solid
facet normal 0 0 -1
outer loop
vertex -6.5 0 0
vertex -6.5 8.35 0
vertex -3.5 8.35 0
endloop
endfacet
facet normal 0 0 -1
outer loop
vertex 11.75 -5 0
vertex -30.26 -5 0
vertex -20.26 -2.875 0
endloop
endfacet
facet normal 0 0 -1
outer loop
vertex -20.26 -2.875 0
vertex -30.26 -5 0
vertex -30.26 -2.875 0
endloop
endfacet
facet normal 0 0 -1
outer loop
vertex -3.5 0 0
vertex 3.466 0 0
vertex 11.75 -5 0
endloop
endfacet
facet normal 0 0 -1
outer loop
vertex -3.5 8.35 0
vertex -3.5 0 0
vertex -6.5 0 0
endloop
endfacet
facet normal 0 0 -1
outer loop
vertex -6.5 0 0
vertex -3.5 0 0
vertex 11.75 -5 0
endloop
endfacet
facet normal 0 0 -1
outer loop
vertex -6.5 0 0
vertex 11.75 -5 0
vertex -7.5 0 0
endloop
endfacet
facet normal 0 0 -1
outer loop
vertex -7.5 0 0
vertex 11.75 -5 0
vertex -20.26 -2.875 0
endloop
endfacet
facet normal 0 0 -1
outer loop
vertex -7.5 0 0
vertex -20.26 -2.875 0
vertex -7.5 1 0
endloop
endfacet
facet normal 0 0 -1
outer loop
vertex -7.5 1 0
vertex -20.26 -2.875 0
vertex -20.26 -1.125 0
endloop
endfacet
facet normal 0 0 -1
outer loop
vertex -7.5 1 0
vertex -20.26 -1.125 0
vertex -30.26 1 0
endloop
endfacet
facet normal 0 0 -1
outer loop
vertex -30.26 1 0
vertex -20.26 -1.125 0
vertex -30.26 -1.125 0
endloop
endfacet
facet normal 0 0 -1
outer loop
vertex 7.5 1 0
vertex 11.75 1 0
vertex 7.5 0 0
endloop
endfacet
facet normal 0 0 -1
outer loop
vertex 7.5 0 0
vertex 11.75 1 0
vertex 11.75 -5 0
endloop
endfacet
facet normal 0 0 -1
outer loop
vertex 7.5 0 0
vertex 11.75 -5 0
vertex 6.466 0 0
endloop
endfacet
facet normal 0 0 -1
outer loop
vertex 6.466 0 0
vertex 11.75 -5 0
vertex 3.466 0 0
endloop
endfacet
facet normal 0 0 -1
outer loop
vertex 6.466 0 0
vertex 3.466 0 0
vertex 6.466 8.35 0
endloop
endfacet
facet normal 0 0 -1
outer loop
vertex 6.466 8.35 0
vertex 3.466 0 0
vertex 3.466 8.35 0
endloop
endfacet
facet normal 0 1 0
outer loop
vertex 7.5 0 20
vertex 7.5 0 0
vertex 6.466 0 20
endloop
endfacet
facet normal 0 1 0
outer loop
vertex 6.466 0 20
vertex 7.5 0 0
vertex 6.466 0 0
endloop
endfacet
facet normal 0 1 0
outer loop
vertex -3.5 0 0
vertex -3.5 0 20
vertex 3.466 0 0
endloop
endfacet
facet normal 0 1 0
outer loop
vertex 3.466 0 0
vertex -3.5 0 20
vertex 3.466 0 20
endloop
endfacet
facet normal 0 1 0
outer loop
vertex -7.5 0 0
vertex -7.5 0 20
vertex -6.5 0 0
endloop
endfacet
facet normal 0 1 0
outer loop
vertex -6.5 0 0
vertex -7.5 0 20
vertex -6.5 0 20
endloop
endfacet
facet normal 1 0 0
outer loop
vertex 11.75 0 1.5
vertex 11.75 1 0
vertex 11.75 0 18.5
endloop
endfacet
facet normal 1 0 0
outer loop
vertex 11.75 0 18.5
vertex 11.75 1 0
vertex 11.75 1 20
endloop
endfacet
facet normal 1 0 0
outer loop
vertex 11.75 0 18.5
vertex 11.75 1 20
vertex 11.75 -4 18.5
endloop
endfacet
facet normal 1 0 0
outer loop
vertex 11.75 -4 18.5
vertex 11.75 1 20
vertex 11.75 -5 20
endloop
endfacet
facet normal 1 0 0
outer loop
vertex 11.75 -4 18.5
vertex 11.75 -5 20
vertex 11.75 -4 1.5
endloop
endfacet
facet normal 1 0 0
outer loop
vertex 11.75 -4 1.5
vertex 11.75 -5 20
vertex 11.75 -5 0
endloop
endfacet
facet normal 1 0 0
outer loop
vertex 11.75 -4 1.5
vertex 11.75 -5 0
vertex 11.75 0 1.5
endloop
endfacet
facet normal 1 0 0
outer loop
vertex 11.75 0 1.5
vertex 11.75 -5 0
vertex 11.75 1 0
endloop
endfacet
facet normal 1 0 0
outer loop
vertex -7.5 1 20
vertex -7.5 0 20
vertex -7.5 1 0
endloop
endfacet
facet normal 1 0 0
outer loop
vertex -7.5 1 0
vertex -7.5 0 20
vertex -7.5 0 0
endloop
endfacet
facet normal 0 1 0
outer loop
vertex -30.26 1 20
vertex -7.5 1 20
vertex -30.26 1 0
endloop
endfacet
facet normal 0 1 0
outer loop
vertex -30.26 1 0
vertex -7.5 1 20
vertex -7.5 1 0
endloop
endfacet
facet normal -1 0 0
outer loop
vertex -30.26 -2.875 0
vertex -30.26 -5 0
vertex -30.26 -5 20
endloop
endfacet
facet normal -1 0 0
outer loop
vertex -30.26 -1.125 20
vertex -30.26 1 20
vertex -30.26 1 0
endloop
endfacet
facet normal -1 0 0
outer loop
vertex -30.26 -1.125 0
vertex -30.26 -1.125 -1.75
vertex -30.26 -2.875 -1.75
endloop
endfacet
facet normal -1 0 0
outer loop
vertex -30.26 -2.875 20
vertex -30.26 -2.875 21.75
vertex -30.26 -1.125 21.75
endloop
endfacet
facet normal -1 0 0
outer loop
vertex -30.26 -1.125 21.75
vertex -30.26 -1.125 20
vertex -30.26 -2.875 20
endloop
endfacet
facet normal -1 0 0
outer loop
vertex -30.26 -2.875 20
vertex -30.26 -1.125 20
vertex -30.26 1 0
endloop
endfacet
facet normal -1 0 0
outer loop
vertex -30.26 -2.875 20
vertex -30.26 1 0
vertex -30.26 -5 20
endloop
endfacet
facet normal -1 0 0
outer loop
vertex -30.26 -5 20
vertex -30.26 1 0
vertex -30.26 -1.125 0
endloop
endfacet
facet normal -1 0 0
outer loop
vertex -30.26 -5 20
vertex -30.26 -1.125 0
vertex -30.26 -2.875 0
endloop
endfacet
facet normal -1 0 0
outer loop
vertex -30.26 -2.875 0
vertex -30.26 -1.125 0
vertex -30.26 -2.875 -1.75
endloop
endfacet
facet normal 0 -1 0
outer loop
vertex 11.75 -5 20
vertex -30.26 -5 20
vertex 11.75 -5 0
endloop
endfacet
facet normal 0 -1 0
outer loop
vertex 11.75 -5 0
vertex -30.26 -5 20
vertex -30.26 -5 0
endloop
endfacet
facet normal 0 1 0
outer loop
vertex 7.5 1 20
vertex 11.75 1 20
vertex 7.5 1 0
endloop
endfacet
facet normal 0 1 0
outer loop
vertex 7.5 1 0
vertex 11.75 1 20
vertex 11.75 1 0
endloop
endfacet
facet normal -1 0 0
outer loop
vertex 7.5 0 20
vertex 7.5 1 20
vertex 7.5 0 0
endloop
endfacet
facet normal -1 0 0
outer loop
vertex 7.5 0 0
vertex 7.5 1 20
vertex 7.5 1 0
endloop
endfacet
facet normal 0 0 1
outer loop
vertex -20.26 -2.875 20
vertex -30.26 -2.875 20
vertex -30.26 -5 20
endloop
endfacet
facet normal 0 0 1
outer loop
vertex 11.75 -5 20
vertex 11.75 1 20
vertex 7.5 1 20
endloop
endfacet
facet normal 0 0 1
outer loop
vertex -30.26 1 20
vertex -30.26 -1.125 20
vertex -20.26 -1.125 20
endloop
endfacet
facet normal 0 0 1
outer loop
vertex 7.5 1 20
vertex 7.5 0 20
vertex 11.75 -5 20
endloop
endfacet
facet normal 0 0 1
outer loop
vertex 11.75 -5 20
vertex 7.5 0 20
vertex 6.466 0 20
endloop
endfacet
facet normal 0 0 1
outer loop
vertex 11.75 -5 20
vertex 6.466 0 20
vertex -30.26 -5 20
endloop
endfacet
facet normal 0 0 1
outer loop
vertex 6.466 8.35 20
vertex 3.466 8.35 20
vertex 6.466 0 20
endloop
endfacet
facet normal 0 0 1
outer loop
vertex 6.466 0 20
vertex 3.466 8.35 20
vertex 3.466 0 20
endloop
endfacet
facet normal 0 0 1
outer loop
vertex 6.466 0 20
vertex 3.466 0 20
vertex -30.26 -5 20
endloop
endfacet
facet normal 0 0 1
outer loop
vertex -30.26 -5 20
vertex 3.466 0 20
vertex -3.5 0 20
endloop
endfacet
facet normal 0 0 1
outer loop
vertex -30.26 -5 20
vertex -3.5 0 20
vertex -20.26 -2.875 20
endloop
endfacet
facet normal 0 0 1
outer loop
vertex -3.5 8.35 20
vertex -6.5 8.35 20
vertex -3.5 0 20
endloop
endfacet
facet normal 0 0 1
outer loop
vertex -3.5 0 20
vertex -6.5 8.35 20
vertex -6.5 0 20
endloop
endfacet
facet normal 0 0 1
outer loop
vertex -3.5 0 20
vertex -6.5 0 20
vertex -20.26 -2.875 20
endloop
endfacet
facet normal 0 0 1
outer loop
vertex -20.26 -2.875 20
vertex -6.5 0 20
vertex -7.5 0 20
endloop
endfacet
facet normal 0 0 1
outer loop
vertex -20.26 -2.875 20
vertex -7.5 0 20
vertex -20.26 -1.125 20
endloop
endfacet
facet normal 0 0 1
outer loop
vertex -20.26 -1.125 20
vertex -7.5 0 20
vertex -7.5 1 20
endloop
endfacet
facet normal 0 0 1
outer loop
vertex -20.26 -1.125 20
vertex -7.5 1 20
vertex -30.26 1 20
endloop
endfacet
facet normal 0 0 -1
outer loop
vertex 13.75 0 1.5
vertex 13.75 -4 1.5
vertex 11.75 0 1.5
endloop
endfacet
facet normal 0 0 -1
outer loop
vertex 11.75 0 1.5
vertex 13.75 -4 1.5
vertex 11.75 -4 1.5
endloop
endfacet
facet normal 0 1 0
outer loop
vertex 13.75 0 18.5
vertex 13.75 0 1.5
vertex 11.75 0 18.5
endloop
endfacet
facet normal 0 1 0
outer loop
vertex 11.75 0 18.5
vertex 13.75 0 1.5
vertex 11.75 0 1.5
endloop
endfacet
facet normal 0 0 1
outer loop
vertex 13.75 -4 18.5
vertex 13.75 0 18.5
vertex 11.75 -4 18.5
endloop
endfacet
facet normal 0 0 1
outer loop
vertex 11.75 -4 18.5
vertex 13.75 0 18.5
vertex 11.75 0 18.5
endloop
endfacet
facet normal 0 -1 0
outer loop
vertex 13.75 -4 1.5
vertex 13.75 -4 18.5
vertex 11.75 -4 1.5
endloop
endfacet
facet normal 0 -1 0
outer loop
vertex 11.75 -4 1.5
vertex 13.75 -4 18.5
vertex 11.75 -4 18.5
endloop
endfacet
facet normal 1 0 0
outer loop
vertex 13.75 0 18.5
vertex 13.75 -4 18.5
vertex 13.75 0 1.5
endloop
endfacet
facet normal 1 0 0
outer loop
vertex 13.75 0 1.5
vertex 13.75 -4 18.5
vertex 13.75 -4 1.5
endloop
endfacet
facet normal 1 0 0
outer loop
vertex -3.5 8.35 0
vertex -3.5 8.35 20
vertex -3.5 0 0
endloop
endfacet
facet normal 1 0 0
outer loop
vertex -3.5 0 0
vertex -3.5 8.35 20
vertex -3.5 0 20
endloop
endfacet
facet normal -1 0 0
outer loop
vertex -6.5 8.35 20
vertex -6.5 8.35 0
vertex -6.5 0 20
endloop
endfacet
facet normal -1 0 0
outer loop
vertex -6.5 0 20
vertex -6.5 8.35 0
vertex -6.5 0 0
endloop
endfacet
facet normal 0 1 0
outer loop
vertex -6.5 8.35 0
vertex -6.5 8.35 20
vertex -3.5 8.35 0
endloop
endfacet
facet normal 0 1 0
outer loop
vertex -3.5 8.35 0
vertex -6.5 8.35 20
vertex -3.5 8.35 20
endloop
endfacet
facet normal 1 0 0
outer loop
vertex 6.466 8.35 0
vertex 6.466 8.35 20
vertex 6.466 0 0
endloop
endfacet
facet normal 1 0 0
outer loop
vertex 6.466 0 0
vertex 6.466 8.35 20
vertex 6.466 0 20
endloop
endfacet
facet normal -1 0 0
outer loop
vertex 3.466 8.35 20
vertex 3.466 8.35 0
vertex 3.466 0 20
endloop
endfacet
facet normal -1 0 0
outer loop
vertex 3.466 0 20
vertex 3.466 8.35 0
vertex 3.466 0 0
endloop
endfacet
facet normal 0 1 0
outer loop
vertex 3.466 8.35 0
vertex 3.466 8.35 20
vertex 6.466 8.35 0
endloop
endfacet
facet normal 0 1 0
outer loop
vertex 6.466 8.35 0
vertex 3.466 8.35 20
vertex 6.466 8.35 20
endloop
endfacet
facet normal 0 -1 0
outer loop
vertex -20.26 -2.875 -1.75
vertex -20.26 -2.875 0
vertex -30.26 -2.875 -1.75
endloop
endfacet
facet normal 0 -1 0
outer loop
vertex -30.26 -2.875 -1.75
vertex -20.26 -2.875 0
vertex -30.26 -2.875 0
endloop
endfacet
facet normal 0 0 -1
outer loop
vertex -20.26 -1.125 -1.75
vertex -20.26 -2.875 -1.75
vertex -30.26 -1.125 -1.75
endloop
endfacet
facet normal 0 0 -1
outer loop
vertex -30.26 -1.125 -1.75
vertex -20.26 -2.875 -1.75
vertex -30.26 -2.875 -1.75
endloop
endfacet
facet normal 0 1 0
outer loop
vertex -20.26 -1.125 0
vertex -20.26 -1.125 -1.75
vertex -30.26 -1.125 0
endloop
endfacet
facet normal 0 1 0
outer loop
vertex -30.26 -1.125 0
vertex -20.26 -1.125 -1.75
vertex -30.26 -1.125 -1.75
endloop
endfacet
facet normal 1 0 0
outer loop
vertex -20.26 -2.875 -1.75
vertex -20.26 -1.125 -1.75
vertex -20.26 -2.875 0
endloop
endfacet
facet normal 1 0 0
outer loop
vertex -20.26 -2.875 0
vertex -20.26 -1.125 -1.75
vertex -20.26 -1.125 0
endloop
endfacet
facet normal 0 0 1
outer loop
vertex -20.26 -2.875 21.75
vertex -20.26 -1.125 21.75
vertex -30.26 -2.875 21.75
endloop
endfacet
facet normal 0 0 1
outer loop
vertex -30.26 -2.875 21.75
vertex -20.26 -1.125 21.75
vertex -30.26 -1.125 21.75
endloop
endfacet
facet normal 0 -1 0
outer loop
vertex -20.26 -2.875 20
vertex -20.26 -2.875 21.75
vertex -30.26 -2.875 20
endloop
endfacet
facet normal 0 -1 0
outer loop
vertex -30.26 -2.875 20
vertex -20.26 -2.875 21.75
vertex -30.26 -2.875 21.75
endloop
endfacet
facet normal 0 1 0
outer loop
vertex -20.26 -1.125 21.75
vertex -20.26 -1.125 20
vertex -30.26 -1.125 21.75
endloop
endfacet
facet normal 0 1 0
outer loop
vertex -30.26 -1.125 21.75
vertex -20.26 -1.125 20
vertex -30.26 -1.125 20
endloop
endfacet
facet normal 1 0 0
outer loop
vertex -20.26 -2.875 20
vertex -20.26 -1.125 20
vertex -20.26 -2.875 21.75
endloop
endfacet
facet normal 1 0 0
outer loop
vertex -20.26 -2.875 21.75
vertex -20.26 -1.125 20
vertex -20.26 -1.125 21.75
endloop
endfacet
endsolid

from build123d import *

# Parameters (mm, degrees)
BOSS_EXTRUDE1_DEPTH = 20
SKETCH6_W           = 17
SKETCH6_H           = 4
BOSS_EXTRUDE3_DEPTH = 2
SKETCH7_W           = 3
SKETCH7_H           = 20
BOSS_EXTRUDE4_DEPTH = 8.35
SKETCH8_W           = 1.75
SKETCH8_H           = 1.75
BOSS_EXTRUDE5_DEPTH = 10


with BuildPart() as part:
    # Sketch2 → Boss-Extrude1 (new body)
    with BuildSketch(Plane.XY):
        Polygon((-7.5, 1), (-30.26, 1), (-30.26, -5), (11.75, -5), (11.75, 1), (7.5, 1), (7.5, 0), (-7.5, 0), align=None)
    extrude(amount=BOSS_EXTRUDE1_DEPTH)

    # Sketch6 → Boss-Extrude3 (add)
    with BuildSketch(Plane(origin=(11.75, 0, 0), x_dir=(0, 0, -1), z_dir=(1, 0, 0))):
        with Locations((-10, -2)):
            Rectangle(SKETCH6_W, SKETCH6_H)
    extrude(amount=BOSS_EXTRUDE3_DEPTH)

    # Sketch7 → Boss-Extrude4 (add)
    with BuildSketch(Plane(origin=(0, 0, 0), x_dir=(1, 0, 0), z_dir=(0, 1, 0))):
        with Locations((-5, -10)):
            Rectangle(SKETCH7_W, SKETCH7_H)
        with Locations((4.965868183, -10)):
            Rectangle(SKETCH7_W, SKETCH7_H)
    extrude(amount=BOSS_EXTRUDE4_DEPTH)

    # Sketch8 → Boss-Extrude5 (add)
    with BuildSketch(Plane.ZY.offset(30.26)):
        with Locations((-0.875, -2)):
            Rectangle(SKETCH8_W, SKETCH8_H)
        with Locations((20.875, -2)):
            Rectangle(SKETCH8_W, SKETCH8_H)
    extrude(amount=-BOSS_EXTRUDE5_DEPTH)


solid = part.part
